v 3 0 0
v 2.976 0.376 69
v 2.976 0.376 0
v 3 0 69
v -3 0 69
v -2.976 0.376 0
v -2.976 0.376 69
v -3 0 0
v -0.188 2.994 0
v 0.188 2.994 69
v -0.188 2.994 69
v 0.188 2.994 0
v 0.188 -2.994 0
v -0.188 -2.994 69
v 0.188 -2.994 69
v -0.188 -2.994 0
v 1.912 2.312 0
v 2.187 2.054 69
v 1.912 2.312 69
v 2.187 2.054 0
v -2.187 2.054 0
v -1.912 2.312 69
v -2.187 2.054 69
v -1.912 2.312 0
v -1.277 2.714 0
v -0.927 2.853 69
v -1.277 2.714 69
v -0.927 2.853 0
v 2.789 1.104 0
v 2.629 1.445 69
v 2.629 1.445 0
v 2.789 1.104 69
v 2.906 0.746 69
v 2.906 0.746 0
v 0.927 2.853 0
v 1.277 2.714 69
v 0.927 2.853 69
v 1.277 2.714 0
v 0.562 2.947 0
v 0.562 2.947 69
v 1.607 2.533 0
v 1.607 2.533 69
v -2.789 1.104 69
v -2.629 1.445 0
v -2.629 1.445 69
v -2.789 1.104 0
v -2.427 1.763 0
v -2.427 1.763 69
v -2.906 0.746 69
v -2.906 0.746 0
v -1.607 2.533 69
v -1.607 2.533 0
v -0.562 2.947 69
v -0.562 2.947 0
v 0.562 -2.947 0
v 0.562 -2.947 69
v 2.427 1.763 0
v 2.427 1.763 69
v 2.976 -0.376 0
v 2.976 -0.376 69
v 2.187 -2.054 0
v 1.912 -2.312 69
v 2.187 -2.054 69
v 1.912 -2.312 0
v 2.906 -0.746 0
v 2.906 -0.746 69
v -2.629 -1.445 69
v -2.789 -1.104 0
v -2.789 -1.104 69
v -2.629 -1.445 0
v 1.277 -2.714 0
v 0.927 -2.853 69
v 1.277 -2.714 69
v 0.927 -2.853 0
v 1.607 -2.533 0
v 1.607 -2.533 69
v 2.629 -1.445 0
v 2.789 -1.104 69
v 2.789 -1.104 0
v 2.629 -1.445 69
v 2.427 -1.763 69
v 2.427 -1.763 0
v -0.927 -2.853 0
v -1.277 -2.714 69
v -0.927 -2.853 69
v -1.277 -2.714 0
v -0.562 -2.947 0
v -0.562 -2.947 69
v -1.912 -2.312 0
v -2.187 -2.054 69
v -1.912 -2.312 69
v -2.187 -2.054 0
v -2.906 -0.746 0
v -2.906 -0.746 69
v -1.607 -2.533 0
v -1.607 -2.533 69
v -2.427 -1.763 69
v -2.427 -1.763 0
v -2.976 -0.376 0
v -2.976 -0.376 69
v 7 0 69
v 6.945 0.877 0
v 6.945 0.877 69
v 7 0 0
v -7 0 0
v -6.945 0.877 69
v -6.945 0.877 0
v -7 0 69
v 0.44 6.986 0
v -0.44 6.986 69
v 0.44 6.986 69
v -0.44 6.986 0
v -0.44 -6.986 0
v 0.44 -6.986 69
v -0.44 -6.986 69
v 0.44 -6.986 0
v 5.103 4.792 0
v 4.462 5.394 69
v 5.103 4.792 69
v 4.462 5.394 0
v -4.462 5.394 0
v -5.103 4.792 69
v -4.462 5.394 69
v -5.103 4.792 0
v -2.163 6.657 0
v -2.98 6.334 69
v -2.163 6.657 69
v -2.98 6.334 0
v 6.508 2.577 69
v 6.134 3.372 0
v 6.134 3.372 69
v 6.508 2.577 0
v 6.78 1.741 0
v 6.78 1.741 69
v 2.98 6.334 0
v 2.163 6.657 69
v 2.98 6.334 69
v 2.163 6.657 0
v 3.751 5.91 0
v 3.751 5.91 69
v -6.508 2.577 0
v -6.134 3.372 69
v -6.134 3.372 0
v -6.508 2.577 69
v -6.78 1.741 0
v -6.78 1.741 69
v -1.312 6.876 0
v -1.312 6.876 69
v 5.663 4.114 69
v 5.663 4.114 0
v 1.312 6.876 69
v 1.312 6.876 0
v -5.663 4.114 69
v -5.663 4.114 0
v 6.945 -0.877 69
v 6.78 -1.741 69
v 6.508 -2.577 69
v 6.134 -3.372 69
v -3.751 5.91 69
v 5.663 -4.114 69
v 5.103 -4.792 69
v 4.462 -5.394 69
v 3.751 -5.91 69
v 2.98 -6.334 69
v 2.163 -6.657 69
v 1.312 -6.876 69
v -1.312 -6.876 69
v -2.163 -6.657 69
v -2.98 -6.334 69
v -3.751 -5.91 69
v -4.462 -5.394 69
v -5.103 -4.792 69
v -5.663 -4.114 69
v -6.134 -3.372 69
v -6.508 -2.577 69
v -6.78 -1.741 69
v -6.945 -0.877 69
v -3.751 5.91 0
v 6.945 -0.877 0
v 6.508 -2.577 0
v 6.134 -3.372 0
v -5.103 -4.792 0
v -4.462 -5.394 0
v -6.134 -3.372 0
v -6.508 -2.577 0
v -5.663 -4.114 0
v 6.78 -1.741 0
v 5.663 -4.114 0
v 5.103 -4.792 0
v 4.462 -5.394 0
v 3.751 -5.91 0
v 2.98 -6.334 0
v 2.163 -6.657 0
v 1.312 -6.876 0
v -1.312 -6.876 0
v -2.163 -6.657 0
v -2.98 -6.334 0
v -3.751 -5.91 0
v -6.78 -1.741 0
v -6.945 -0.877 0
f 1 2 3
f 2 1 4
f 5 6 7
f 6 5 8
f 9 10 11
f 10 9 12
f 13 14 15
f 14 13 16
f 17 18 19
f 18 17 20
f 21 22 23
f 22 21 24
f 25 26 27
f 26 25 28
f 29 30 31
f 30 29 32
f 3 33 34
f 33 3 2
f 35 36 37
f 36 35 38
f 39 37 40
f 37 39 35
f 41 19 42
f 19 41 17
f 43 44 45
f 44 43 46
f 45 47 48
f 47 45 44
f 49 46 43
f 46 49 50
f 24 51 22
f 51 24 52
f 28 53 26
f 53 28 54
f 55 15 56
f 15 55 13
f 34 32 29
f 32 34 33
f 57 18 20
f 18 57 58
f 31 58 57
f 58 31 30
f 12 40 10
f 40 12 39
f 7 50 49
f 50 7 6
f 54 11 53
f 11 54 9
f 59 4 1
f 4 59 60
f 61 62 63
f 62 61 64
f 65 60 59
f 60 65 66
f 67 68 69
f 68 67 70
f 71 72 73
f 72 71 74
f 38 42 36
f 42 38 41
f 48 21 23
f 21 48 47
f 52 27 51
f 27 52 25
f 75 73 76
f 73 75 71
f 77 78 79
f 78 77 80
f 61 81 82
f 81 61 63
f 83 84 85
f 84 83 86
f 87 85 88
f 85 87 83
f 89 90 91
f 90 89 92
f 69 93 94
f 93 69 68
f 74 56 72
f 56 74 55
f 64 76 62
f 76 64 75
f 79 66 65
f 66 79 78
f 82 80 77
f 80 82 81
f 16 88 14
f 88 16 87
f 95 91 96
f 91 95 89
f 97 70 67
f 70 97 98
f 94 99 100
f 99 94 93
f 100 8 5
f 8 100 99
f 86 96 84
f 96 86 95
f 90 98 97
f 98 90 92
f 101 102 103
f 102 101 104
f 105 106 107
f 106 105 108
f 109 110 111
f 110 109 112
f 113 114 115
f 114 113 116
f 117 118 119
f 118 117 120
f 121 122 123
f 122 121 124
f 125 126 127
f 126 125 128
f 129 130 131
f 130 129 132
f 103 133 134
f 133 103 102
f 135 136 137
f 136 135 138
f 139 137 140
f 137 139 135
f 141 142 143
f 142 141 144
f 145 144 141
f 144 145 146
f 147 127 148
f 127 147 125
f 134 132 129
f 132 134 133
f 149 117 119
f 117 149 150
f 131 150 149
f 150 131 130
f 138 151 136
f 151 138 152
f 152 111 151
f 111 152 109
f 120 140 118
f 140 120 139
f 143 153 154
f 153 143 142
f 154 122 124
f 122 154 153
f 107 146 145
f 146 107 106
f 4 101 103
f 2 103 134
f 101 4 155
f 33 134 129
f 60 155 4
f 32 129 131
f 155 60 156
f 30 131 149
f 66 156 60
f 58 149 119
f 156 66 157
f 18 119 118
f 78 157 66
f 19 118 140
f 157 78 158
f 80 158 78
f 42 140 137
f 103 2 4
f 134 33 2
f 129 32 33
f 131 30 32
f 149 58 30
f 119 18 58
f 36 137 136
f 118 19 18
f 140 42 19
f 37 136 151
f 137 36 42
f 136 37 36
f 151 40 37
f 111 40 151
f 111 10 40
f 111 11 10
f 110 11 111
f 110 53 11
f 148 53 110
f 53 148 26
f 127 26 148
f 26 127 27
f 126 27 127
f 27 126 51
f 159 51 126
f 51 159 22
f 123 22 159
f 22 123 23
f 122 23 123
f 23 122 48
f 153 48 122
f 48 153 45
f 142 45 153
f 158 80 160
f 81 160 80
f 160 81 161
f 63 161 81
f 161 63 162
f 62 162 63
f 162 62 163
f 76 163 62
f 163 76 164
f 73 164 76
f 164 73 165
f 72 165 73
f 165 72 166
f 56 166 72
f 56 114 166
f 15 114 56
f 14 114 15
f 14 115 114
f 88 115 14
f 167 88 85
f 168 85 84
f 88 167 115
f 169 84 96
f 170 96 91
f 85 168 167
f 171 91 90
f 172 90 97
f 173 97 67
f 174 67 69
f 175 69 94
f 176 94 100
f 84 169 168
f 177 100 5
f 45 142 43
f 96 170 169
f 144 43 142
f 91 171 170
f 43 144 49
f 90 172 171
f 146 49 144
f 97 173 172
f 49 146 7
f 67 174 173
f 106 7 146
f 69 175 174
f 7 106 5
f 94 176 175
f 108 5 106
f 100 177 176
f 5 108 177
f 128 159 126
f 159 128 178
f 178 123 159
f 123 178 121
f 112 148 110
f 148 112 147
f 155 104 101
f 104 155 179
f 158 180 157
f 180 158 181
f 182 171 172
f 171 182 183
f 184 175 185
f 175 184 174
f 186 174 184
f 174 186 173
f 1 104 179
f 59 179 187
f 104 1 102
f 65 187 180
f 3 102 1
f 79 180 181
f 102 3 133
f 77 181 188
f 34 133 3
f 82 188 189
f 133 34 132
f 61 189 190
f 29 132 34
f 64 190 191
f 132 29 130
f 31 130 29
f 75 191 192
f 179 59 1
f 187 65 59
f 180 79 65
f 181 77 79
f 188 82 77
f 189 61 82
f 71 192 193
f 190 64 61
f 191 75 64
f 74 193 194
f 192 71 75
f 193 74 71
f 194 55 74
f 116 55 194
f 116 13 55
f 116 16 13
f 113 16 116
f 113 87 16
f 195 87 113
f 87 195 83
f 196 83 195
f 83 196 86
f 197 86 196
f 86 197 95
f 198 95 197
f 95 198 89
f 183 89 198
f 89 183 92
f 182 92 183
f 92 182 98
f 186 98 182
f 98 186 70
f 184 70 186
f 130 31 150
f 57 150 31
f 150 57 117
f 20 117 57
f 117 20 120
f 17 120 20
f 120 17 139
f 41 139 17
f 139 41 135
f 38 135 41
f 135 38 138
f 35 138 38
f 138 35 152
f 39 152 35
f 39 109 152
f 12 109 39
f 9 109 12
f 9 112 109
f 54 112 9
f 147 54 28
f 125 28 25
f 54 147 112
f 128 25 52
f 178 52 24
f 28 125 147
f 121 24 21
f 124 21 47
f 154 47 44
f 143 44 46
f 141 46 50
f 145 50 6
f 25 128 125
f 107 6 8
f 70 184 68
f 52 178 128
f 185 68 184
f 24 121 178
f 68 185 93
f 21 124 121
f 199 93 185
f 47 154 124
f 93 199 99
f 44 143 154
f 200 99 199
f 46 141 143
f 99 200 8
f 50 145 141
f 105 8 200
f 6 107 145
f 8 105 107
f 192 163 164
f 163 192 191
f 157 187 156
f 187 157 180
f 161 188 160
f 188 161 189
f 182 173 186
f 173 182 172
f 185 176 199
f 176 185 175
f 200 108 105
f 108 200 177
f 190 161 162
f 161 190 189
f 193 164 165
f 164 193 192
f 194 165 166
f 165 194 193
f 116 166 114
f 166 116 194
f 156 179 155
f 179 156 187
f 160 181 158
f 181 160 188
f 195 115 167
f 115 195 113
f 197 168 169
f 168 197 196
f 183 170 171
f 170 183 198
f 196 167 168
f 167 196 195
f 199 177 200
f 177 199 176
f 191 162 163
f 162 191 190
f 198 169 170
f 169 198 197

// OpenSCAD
$fn = 50;


difference() {
	union() {
		*color(alpha = 1.0000000000, c = "gray") {
			translate(v = [0, 7, 0]) {
				linear_extrude(height = 1) {
					text(font = "Arial:style=Bold", halign = "center", size = 4.5000000000, text = "COMMENT plate main", valign = "center");
				}
			}
		}
		cylinder(h = 69, r = 7.0000000000);
	}
	union() {
		*color(alpha = 1.0000000000, c = "gray") {
			translate(v = [0, 7, 0]) {
				linear_extrude(height = 1) {
					text(font = "Arial:style=Bold", halign = "center", size = 4.5000000000, text = "COMMENT holes main", valign = "center");
				}
			}
		}
		translate(v = [0, 0, -100]) {
			cylinder(h = 200, r = 3.0000000000);
		}
		translate(v = [0, 0, -100]) {
			cylinder(h = 200, r = 1.5000000000);
		}
	}
}
